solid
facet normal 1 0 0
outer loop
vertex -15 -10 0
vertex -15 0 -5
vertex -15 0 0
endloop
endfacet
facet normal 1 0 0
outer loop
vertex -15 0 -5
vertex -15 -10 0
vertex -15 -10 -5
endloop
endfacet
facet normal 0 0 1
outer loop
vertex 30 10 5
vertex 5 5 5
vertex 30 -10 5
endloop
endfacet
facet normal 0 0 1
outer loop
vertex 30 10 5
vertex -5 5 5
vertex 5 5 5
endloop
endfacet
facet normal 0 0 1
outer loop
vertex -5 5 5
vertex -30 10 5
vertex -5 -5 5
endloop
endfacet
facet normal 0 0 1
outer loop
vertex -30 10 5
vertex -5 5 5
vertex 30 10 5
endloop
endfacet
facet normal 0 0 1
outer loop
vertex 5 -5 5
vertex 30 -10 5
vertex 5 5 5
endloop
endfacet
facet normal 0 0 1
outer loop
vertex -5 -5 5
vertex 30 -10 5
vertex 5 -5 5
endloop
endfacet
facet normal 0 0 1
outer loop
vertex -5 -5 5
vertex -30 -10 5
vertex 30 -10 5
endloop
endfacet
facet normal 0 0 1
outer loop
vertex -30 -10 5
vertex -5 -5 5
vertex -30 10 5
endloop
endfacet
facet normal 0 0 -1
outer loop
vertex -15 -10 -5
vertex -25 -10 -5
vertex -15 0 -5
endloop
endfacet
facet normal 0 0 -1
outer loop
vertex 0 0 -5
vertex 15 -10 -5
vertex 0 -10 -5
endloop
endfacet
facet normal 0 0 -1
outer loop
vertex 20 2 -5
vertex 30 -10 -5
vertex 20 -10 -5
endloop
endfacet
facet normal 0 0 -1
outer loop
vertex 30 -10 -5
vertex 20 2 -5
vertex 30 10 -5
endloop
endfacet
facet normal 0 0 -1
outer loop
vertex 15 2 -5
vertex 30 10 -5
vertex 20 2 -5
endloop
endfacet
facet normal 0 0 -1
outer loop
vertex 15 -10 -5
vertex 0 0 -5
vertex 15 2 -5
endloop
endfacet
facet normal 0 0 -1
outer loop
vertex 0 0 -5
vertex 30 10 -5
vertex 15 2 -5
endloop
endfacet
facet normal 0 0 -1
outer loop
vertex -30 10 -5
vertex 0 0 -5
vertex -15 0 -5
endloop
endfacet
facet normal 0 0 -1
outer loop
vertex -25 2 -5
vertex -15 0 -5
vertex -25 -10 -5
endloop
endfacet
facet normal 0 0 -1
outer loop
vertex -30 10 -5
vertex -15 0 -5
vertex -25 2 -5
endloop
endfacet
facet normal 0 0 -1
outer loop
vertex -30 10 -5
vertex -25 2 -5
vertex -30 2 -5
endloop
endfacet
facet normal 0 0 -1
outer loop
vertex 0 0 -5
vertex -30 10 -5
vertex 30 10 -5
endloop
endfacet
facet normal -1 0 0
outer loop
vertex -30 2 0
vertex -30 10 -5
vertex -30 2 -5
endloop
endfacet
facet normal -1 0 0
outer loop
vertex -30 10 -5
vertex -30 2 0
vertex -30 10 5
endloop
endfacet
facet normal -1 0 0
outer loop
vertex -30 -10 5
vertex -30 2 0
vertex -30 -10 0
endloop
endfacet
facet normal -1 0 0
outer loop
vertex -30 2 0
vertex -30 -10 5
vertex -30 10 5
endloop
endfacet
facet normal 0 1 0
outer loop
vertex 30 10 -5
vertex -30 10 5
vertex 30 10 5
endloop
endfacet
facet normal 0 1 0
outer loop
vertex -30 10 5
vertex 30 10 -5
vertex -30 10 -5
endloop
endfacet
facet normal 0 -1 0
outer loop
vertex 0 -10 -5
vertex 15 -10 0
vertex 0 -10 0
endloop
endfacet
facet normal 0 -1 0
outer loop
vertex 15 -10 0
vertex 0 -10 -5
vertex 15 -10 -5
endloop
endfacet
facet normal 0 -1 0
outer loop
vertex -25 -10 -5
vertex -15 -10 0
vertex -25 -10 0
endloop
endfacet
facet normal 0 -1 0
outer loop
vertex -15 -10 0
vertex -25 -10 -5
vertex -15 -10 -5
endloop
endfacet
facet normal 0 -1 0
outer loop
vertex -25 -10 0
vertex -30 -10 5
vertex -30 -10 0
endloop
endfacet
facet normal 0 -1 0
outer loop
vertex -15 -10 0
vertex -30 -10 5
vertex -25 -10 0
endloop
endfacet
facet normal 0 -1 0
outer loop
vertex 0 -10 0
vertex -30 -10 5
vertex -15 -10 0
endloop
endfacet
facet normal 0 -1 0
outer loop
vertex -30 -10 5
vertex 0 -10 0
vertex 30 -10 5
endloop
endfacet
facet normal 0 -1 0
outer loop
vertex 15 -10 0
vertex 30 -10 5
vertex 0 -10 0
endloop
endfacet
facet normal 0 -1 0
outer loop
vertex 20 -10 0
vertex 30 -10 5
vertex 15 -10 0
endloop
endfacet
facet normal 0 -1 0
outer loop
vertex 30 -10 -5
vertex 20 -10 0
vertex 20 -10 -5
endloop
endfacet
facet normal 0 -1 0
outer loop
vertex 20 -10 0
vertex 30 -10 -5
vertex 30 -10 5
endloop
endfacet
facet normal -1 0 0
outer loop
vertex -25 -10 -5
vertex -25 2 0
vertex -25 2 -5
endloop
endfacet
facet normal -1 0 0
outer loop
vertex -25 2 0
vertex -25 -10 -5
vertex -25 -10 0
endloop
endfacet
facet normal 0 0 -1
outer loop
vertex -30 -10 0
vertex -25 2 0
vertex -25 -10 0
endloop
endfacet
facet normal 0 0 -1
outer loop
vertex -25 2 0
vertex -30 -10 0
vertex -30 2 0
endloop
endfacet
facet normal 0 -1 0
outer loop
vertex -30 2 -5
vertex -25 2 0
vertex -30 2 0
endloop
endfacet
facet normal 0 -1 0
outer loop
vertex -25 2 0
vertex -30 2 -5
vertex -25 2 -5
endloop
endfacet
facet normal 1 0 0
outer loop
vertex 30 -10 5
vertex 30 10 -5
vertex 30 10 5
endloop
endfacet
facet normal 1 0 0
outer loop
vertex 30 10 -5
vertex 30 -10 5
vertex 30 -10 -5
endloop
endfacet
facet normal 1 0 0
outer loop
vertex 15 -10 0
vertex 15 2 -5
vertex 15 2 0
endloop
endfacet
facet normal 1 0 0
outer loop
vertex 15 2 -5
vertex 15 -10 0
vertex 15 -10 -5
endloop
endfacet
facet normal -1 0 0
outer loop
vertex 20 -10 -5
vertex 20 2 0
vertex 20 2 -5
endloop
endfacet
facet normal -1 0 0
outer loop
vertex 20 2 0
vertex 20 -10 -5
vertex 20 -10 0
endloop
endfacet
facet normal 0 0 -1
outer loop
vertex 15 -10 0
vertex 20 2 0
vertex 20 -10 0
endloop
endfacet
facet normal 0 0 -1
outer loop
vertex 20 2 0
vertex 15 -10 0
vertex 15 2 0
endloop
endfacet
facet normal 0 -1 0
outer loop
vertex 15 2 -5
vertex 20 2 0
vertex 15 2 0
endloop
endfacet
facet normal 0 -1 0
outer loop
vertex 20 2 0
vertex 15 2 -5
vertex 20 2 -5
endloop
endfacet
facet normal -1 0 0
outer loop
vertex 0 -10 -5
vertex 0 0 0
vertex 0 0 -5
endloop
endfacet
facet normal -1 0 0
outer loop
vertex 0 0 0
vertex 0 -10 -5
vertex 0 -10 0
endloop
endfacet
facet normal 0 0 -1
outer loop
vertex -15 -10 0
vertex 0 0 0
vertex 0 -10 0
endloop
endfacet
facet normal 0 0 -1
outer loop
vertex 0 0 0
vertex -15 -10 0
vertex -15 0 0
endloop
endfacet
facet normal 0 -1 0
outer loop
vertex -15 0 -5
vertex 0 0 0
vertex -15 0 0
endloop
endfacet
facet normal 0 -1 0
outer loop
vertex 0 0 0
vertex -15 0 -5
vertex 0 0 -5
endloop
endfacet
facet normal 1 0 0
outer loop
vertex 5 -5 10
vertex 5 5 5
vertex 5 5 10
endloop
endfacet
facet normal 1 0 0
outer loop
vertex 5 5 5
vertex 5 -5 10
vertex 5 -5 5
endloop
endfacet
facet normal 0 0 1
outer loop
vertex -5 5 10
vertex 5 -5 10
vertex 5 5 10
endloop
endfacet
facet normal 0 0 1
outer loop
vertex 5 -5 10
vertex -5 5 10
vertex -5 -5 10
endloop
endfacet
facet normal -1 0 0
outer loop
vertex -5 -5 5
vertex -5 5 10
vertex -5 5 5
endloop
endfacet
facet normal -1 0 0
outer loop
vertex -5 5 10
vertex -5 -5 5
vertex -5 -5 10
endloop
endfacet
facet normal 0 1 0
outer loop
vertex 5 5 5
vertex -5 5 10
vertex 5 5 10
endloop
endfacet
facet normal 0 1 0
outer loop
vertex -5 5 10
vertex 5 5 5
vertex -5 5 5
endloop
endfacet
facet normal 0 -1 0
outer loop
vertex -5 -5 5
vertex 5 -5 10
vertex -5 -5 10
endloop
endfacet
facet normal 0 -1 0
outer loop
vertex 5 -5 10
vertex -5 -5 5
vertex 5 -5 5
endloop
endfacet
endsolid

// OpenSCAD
// Define dimensions for the components
module central_block() {
    difference() {
        cube([30, 20, 10], center = true); // Main block
        translate([-15, -8.5, -5]) // Adjusted cutout width to match original proportions
            cube([30, 17, 10], center = true); // Wider U-shaped cutout
    }
}

module side_block() {
    difference() {
        cube([15, 20, 10], center = true); // Main block
        translate([-7.5, -4, -5]) // Adjusted cutout depth to match original design
            cube([10, 12, 10], center = true); // Shallower rectangular cutout
    }
}

module connector_block() {
    difference() {
        cube([10, 10, 10], center = true); // Main block
        translate([-5, -2.5, -5]) // Adjusted protruding section dimensions
            cube([10, 8, 10], center = true); // Larger and more pronounced protruding section
    }
}

// Assemble the components
module assembly() {
    // Layer 1: Side blocks
    translate([-22.5, 0, 0])
        side_block();
    translate([22.5, 0, 0])
        side_block();

    // Layer 2: Central block
    central_block();

    // Layer 3: Connector block
    translate([0, 0, 5])
        connector_block();
}

// Render the assembly
assembly();
